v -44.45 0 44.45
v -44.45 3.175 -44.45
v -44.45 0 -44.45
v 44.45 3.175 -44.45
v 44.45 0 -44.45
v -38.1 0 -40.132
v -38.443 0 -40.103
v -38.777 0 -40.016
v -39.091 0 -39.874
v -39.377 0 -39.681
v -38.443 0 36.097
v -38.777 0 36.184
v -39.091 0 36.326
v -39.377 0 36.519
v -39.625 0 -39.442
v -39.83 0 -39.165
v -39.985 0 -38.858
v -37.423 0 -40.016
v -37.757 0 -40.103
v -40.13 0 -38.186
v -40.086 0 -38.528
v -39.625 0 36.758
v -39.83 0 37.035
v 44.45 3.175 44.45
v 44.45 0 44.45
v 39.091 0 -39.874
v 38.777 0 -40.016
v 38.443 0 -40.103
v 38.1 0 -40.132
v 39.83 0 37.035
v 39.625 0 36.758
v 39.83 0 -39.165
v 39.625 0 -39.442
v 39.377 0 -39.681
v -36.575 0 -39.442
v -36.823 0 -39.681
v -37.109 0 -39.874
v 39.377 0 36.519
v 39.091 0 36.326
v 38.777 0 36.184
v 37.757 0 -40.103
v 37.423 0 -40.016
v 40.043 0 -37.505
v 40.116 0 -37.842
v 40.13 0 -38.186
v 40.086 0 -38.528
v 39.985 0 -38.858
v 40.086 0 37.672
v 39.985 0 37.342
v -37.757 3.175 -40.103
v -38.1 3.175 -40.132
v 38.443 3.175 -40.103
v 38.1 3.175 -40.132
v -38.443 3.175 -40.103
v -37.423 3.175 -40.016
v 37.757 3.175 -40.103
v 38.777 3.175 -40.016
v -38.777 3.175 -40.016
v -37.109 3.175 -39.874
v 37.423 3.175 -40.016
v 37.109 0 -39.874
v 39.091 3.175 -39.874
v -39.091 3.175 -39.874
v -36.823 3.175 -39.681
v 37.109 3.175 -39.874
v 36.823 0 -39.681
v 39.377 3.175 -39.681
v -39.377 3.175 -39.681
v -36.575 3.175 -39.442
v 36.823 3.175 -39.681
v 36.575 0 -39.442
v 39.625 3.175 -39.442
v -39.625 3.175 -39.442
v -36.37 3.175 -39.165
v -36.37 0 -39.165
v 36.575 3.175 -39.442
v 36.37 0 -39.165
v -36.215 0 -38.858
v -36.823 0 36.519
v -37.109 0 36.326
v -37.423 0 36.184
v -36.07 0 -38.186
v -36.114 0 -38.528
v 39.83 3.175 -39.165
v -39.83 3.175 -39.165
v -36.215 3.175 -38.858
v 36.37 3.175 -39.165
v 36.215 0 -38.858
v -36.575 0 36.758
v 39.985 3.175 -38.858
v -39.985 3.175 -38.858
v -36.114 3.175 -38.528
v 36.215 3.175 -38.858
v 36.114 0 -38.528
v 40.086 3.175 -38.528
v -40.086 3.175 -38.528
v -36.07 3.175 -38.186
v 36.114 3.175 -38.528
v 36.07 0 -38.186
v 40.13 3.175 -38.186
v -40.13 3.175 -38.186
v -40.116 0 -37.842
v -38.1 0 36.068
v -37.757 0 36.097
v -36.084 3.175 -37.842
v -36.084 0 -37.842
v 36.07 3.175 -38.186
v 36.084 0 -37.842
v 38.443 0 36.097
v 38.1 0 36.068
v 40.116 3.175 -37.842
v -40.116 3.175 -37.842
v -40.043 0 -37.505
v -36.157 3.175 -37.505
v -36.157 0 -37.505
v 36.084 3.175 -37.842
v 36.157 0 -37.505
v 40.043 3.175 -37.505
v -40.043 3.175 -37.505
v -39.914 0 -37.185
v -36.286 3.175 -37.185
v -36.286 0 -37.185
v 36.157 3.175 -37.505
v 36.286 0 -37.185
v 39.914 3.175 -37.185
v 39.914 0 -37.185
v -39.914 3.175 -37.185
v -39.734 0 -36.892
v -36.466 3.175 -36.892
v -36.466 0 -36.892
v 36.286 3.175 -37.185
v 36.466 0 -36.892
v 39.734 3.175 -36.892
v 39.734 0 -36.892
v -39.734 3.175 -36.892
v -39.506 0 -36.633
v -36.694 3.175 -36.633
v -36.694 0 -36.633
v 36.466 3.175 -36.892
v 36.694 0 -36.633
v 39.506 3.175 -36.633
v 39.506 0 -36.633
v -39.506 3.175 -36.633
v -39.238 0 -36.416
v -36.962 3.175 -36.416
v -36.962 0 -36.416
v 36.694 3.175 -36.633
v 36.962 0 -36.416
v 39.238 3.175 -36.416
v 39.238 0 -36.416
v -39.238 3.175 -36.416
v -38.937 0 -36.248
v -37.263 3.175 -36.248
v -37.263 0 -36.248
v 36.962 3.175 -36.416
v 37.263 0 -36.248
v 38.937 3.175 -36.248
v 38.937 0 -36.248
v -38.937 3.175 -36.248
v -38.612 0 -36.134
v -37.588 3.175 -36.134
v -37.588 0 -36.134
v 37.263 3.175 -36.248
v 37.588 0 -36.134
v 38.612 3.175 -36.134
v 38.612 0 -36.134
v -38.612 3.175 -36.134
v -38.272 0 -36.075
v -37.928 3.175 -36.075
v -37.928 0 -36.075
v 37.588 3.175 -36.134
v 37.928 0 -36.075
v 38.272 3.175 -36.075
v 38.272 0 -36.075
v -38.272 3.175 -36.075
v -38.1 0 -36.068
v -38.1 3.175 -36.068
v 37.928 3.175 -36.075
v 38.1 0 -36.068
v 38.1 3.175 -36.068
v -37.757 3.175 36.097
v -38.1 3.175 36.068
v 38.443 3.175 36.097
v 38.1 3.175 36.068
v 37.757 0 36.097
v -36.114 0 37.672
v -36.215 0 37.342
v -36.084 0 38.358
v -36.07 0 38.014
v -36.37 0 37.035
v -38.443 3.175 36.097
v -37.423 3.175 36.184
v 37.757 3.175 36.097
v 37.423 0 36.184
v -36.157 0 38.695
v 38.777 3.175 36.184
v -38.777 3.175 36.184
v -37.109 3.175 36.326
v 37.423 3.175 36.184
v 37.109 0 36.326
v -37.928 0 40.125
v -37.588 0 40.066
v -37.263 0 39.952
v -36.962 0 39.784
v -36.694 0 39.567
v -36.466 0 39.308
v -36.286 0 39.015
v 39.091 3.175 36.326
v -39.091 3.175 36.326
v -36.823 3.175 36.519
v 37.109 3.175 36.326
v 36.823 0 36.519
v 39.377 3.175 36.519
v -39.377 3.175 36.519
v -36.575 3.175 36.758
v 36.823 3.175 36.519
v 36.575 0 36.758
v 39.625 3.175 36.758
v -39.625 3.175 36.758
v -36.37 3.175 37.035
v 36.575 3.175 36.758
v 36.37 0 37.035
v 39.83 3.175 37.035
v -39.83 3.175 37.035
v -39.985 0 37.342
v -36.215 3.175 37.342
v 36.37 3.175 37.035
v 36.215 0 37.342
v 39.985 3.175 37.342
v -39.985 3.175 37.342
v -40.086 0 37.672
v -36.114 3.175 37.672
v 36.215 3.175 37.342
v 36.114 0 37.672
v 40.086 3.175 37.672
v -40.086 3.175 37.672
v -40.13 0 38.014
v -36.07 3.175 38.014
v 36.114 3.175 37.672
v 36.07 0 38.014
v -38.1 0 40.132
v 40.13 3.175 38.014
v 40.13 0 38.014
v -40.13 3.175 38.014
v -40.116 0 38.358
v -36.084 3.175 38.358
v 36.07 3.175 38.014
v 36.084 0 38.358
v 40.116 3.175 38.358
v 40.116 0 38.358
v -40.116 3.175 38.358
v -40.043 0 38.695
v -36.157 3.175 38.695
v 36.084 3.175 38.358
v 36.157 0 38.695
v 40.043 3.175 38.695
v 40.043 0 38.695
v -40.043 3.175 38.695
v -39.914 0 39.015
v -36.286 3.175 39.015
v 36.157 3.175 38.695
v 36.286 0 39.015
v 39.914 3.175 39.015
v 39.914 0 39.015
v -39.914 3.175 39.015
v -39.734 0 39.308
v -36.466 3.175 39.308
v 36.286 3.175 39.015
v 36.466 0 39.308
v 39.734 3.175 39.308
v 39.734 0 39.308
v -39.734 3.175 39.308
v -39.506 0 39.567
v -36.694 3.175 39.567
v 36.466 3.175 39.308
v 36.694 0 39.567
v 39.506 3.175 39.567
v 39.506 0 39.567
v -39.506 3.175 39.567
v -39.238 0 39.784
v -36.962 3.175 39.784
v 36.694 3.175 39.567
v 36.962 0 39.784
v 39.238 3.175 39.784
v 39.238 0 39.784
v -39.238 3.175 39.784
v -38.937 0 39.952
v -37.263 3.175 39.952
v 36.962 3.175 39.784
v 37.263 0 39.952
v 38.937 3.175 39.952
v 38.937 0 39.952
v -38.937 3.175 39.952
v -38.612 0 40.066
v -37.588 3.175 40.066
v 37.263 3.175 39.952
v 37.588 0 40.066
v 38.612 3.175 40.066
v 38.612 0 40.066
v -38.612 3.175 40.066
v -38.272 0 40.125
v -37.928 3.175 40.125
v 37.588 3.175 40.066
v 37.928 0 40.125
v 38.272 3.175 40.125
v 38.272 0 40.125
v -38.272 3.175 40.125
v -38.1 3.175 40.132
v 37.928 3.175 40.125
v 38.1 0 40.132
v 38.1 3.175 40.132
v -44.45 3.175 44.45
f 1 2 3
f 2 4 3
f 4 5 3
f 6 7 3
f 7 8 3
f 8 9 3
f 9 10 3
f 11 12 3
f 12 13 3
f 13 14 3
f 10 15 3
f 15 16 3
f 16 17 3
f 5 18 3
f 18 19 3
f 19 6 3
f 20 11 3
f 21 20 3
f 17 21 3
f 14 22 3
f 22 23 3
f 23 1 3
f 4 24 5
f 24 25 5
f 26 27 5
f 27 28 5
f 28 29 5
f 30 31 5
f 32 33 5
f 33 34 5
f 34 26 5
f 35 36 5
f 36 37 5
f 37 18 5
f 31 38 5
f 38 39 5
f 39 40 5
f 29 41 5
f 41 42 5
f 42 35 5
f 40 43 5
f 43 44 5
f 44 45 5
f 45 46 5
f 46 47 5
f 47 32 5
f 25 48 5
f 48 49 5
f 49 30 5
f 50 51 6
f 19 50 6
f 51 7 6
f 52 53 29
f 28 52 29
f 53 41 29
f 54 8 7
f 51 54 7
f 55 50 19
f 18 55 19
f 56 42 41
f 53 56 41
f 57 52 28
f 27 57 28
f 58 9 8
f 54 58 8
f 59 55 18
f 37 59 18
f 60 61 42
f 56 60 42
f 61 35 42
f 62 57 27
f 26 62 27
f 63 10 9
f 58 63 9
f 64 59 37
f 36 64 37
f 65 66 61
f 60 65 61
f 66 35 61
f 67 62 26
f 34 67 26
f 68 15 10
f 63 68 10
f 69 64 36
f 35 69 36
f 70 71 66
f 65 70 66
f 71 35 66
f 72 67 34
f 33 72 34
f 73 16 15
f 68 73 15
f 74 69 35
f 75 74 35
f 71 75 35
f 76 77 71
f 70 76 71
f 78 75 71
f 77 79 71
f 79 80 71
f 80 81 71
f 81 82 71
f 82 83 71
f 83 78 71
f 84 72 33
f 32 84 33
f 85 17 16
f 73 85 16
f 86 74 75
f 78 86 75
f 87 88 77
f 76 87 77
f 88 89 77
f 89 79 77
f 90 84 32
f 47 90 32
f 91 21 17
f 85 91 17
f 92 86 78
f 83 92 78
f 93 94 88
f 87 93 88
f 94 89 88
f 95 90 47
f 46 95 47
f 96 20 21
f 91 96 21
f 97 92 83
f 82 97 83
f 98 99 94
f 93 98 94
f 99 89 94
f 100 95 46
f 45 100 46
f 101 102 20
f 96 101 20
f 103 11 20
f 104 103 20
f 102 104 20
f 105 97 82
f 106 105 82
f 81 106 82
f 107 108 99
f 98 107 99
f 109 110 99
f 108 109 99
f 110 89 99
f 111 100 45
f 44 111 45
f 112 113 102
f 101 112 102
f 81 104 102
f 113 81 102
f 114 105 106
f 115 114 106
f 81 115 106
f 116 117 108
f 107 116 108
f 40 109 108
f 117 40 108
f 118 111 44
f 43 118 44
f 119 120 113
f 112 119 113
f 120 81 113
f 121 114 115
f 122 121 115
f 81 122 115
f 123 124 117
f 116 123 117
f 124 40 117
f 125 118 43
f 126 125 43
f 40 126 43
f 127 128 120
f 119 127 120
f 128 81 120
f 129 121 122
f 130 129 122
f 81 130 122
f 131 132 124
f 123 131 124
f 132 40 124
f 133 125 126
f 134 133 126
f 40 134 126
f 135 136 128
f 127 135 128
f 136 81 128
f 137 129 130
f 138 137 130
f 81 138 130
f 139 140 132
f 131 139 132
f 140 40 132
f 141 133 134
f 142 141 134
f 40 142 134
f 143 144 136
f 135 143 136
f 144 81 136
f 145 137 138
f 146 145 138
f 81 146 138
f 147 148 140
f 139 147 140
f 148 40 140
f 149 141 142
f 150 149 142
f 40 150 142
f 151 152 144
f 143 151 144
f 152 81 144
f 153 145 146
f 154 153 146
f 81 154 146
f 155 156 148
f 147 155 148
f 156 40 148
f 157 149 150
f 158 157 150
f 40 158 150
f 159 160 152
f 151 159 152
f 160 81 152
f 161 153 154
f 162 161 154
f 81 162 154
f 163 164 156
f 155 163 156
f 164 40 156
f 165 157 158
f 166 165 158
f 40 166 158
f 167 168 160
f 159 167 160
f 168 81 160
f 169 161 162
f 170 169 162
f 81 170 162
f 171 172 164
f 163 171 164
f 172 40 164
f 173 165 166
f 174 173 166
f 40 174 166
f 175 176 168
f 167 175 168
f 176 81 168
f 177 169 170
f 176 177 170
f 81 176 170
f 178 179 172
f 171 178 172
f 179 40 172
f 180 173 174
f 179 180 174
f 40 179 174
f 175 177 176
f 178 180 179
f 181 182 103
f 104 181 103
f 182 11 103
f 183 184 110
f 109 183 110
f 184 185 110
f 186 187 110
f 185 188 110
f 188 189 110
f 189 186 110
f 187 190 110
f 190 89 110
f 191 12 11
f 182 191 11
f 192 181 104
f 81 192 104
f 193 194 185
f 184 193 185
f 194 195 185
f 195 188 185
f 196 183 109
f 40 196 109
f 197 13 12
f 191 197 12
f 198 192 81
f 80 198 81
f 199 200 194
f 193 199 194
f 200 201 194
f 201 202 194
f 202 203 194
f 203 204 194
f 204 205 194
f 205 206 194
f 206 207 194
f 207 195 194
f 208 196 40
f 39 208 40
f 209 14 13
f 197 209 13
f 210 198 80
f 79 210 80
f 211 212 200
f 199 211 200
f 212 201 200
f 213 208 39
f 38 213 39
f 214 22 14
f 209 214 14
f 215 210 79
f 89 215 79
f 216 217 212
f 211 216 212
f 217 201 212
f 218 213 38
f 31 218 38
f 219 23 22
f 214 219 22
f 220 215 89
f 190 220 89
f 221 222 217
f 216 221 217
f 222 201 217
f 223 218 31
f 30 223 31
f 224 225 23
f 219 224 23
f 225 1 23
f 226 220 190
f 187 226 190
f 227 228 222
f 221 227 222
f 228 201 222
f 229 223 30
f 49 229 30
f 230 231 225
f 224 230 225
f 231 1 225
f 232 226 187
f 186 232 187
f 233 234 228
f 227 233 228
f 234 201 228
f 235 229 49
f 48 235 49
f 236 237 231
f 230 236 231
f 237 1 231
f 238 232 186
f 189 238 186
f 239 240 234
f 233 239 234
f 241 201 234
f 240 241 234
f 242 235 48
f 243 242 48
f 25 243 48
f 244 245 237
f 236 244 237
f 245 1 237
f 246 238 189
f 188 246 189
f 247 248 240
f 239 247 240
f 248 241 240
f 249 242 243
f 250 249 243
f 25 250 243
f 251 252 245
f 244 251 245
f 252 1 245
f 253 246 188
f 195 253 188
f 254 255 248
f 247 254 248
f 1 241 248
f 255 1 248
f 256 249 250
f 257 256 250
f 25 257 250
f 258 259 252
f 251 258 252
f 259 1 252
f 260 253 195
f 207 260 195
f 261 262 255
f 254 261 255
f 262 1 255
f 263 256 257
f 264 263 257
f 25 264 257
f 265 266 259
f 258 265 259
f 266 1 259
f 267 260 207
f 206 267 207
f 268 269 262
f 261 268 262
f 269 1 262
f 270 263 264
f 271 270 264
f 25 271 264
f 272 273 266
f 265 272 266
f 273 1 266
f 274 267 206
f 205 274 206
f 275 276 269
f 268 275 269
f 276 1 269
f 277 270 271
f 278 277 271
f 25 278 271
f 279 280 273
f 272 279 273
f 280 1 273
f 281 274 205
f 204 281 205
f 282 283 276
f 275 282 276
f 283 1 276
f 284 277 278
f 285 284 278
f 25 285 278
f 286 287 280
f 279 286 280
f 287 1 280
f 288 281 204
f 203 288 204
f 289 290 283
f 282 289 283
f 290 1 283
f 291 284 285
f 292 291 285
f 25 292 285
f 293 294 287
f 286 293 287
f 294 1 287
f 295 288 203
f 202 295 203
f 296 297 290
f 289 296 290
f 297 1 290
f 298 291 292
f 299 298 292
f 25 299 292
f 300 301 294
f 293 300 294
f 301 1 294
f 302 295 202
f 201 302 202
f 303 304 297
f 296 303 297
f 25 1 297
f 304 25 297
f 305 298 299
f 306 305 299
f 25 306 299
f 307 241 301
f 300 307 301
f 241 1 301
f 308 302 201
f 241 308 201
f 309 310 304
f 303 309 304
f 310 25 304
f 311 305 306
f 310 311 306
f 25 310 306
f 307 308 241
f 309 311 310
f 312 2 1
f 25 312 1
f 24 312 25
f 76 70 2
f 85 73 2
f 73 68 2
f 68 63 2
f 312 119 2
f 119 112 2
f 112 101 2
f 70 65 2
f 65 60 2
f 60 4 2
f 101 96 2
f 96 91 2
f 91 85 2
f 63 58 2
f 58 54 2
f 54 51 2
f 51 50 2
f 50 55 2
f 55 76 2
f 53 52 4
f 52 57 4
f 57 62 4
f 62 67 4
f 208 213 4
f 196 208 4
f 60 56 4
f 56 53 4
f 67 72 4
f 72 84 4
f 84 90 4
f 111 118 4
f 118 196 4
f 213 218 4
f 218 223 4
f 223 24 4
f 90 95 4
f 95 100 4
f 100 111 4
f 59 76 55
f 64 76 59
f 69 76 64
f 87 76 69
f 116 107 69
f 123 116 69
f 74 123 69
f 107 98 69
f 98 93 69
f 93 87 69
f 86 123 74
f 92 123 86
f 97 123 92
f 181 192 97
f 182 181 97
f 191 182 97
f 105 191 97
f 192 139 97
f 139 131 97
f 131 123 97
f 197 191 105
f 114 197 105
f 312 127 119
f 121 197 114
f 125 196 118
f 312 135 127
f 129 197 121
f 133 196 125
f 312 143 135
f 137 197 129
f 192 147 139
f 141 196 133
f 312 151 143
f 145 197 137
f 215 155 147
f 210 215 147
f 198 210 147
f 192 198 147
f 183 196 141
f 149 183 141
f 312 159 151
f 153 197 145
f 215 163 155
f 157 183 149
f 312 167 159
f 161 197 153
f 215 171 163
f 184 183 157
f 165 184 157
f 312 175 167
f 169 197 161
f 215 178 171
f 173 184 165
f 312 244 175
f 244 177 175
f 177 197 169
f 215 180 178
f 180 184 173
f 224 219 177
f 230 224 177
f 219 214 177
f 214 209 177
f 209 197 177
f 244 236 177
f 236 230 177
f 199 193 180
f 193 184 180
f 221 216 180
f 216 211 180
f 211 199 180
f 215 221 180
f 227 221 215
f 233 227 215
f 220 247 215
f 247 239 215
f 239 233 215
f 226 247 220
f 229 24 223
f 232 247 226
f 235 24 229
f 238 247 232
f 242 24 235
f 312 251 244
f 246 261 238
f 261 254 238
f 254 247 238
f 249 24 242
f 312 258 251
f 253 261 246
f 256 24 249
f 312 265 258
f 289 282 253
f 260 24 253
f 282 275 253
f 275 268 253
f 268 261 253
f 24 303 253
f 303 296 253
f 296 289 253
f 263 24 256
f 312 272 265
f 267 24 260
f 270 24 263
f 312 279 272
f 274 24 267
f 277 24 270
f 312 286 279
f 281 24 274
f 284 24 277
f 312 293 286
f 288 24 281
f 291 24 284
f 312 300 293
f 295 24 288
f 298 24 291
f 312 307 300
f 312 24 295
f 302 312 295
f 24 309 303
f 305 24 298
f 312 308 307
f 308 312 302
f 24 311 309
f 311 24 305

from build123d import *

# Parameters (mm, degrees)
SKETCH1_W           = 88.9
SKETCH1_H           = 88.9
SKETCH1_R           = 2.032
BOSS_EXTRUDE2_DEPTH = 3.175


with BuildPart() as part:
    # Sketch1 → Boss-Extrude2 (new body)
    with BuildSketch(Plane(origin=(0, 0, 0), x_dir=(1, 0, 0), z_dir=(0, 1, 0))):
        Rectangle(SKETCH1_W, SKETCH1_H)
        with Locations((-38.1, -38.1)):
            Circle(SKETCH1_R, mode=Mode.SUBTRACT)
        with Locations((38.1, 38.1)):
            Circle(SKETCH1_R, mode=Mode.SUBTRACT)
        with Locations((38.1, -38.1)):
            Circle(SKETCH1_R, mode=Mode.SUBTRACT)
        with Locations((-38.1, 38.1)):
            Circle(SKETCH1_R, mode=Mode.SUBTRACT)
    extrude(amount=BOSS_EXTRUDE2_DEPTH)


solid = part.part
